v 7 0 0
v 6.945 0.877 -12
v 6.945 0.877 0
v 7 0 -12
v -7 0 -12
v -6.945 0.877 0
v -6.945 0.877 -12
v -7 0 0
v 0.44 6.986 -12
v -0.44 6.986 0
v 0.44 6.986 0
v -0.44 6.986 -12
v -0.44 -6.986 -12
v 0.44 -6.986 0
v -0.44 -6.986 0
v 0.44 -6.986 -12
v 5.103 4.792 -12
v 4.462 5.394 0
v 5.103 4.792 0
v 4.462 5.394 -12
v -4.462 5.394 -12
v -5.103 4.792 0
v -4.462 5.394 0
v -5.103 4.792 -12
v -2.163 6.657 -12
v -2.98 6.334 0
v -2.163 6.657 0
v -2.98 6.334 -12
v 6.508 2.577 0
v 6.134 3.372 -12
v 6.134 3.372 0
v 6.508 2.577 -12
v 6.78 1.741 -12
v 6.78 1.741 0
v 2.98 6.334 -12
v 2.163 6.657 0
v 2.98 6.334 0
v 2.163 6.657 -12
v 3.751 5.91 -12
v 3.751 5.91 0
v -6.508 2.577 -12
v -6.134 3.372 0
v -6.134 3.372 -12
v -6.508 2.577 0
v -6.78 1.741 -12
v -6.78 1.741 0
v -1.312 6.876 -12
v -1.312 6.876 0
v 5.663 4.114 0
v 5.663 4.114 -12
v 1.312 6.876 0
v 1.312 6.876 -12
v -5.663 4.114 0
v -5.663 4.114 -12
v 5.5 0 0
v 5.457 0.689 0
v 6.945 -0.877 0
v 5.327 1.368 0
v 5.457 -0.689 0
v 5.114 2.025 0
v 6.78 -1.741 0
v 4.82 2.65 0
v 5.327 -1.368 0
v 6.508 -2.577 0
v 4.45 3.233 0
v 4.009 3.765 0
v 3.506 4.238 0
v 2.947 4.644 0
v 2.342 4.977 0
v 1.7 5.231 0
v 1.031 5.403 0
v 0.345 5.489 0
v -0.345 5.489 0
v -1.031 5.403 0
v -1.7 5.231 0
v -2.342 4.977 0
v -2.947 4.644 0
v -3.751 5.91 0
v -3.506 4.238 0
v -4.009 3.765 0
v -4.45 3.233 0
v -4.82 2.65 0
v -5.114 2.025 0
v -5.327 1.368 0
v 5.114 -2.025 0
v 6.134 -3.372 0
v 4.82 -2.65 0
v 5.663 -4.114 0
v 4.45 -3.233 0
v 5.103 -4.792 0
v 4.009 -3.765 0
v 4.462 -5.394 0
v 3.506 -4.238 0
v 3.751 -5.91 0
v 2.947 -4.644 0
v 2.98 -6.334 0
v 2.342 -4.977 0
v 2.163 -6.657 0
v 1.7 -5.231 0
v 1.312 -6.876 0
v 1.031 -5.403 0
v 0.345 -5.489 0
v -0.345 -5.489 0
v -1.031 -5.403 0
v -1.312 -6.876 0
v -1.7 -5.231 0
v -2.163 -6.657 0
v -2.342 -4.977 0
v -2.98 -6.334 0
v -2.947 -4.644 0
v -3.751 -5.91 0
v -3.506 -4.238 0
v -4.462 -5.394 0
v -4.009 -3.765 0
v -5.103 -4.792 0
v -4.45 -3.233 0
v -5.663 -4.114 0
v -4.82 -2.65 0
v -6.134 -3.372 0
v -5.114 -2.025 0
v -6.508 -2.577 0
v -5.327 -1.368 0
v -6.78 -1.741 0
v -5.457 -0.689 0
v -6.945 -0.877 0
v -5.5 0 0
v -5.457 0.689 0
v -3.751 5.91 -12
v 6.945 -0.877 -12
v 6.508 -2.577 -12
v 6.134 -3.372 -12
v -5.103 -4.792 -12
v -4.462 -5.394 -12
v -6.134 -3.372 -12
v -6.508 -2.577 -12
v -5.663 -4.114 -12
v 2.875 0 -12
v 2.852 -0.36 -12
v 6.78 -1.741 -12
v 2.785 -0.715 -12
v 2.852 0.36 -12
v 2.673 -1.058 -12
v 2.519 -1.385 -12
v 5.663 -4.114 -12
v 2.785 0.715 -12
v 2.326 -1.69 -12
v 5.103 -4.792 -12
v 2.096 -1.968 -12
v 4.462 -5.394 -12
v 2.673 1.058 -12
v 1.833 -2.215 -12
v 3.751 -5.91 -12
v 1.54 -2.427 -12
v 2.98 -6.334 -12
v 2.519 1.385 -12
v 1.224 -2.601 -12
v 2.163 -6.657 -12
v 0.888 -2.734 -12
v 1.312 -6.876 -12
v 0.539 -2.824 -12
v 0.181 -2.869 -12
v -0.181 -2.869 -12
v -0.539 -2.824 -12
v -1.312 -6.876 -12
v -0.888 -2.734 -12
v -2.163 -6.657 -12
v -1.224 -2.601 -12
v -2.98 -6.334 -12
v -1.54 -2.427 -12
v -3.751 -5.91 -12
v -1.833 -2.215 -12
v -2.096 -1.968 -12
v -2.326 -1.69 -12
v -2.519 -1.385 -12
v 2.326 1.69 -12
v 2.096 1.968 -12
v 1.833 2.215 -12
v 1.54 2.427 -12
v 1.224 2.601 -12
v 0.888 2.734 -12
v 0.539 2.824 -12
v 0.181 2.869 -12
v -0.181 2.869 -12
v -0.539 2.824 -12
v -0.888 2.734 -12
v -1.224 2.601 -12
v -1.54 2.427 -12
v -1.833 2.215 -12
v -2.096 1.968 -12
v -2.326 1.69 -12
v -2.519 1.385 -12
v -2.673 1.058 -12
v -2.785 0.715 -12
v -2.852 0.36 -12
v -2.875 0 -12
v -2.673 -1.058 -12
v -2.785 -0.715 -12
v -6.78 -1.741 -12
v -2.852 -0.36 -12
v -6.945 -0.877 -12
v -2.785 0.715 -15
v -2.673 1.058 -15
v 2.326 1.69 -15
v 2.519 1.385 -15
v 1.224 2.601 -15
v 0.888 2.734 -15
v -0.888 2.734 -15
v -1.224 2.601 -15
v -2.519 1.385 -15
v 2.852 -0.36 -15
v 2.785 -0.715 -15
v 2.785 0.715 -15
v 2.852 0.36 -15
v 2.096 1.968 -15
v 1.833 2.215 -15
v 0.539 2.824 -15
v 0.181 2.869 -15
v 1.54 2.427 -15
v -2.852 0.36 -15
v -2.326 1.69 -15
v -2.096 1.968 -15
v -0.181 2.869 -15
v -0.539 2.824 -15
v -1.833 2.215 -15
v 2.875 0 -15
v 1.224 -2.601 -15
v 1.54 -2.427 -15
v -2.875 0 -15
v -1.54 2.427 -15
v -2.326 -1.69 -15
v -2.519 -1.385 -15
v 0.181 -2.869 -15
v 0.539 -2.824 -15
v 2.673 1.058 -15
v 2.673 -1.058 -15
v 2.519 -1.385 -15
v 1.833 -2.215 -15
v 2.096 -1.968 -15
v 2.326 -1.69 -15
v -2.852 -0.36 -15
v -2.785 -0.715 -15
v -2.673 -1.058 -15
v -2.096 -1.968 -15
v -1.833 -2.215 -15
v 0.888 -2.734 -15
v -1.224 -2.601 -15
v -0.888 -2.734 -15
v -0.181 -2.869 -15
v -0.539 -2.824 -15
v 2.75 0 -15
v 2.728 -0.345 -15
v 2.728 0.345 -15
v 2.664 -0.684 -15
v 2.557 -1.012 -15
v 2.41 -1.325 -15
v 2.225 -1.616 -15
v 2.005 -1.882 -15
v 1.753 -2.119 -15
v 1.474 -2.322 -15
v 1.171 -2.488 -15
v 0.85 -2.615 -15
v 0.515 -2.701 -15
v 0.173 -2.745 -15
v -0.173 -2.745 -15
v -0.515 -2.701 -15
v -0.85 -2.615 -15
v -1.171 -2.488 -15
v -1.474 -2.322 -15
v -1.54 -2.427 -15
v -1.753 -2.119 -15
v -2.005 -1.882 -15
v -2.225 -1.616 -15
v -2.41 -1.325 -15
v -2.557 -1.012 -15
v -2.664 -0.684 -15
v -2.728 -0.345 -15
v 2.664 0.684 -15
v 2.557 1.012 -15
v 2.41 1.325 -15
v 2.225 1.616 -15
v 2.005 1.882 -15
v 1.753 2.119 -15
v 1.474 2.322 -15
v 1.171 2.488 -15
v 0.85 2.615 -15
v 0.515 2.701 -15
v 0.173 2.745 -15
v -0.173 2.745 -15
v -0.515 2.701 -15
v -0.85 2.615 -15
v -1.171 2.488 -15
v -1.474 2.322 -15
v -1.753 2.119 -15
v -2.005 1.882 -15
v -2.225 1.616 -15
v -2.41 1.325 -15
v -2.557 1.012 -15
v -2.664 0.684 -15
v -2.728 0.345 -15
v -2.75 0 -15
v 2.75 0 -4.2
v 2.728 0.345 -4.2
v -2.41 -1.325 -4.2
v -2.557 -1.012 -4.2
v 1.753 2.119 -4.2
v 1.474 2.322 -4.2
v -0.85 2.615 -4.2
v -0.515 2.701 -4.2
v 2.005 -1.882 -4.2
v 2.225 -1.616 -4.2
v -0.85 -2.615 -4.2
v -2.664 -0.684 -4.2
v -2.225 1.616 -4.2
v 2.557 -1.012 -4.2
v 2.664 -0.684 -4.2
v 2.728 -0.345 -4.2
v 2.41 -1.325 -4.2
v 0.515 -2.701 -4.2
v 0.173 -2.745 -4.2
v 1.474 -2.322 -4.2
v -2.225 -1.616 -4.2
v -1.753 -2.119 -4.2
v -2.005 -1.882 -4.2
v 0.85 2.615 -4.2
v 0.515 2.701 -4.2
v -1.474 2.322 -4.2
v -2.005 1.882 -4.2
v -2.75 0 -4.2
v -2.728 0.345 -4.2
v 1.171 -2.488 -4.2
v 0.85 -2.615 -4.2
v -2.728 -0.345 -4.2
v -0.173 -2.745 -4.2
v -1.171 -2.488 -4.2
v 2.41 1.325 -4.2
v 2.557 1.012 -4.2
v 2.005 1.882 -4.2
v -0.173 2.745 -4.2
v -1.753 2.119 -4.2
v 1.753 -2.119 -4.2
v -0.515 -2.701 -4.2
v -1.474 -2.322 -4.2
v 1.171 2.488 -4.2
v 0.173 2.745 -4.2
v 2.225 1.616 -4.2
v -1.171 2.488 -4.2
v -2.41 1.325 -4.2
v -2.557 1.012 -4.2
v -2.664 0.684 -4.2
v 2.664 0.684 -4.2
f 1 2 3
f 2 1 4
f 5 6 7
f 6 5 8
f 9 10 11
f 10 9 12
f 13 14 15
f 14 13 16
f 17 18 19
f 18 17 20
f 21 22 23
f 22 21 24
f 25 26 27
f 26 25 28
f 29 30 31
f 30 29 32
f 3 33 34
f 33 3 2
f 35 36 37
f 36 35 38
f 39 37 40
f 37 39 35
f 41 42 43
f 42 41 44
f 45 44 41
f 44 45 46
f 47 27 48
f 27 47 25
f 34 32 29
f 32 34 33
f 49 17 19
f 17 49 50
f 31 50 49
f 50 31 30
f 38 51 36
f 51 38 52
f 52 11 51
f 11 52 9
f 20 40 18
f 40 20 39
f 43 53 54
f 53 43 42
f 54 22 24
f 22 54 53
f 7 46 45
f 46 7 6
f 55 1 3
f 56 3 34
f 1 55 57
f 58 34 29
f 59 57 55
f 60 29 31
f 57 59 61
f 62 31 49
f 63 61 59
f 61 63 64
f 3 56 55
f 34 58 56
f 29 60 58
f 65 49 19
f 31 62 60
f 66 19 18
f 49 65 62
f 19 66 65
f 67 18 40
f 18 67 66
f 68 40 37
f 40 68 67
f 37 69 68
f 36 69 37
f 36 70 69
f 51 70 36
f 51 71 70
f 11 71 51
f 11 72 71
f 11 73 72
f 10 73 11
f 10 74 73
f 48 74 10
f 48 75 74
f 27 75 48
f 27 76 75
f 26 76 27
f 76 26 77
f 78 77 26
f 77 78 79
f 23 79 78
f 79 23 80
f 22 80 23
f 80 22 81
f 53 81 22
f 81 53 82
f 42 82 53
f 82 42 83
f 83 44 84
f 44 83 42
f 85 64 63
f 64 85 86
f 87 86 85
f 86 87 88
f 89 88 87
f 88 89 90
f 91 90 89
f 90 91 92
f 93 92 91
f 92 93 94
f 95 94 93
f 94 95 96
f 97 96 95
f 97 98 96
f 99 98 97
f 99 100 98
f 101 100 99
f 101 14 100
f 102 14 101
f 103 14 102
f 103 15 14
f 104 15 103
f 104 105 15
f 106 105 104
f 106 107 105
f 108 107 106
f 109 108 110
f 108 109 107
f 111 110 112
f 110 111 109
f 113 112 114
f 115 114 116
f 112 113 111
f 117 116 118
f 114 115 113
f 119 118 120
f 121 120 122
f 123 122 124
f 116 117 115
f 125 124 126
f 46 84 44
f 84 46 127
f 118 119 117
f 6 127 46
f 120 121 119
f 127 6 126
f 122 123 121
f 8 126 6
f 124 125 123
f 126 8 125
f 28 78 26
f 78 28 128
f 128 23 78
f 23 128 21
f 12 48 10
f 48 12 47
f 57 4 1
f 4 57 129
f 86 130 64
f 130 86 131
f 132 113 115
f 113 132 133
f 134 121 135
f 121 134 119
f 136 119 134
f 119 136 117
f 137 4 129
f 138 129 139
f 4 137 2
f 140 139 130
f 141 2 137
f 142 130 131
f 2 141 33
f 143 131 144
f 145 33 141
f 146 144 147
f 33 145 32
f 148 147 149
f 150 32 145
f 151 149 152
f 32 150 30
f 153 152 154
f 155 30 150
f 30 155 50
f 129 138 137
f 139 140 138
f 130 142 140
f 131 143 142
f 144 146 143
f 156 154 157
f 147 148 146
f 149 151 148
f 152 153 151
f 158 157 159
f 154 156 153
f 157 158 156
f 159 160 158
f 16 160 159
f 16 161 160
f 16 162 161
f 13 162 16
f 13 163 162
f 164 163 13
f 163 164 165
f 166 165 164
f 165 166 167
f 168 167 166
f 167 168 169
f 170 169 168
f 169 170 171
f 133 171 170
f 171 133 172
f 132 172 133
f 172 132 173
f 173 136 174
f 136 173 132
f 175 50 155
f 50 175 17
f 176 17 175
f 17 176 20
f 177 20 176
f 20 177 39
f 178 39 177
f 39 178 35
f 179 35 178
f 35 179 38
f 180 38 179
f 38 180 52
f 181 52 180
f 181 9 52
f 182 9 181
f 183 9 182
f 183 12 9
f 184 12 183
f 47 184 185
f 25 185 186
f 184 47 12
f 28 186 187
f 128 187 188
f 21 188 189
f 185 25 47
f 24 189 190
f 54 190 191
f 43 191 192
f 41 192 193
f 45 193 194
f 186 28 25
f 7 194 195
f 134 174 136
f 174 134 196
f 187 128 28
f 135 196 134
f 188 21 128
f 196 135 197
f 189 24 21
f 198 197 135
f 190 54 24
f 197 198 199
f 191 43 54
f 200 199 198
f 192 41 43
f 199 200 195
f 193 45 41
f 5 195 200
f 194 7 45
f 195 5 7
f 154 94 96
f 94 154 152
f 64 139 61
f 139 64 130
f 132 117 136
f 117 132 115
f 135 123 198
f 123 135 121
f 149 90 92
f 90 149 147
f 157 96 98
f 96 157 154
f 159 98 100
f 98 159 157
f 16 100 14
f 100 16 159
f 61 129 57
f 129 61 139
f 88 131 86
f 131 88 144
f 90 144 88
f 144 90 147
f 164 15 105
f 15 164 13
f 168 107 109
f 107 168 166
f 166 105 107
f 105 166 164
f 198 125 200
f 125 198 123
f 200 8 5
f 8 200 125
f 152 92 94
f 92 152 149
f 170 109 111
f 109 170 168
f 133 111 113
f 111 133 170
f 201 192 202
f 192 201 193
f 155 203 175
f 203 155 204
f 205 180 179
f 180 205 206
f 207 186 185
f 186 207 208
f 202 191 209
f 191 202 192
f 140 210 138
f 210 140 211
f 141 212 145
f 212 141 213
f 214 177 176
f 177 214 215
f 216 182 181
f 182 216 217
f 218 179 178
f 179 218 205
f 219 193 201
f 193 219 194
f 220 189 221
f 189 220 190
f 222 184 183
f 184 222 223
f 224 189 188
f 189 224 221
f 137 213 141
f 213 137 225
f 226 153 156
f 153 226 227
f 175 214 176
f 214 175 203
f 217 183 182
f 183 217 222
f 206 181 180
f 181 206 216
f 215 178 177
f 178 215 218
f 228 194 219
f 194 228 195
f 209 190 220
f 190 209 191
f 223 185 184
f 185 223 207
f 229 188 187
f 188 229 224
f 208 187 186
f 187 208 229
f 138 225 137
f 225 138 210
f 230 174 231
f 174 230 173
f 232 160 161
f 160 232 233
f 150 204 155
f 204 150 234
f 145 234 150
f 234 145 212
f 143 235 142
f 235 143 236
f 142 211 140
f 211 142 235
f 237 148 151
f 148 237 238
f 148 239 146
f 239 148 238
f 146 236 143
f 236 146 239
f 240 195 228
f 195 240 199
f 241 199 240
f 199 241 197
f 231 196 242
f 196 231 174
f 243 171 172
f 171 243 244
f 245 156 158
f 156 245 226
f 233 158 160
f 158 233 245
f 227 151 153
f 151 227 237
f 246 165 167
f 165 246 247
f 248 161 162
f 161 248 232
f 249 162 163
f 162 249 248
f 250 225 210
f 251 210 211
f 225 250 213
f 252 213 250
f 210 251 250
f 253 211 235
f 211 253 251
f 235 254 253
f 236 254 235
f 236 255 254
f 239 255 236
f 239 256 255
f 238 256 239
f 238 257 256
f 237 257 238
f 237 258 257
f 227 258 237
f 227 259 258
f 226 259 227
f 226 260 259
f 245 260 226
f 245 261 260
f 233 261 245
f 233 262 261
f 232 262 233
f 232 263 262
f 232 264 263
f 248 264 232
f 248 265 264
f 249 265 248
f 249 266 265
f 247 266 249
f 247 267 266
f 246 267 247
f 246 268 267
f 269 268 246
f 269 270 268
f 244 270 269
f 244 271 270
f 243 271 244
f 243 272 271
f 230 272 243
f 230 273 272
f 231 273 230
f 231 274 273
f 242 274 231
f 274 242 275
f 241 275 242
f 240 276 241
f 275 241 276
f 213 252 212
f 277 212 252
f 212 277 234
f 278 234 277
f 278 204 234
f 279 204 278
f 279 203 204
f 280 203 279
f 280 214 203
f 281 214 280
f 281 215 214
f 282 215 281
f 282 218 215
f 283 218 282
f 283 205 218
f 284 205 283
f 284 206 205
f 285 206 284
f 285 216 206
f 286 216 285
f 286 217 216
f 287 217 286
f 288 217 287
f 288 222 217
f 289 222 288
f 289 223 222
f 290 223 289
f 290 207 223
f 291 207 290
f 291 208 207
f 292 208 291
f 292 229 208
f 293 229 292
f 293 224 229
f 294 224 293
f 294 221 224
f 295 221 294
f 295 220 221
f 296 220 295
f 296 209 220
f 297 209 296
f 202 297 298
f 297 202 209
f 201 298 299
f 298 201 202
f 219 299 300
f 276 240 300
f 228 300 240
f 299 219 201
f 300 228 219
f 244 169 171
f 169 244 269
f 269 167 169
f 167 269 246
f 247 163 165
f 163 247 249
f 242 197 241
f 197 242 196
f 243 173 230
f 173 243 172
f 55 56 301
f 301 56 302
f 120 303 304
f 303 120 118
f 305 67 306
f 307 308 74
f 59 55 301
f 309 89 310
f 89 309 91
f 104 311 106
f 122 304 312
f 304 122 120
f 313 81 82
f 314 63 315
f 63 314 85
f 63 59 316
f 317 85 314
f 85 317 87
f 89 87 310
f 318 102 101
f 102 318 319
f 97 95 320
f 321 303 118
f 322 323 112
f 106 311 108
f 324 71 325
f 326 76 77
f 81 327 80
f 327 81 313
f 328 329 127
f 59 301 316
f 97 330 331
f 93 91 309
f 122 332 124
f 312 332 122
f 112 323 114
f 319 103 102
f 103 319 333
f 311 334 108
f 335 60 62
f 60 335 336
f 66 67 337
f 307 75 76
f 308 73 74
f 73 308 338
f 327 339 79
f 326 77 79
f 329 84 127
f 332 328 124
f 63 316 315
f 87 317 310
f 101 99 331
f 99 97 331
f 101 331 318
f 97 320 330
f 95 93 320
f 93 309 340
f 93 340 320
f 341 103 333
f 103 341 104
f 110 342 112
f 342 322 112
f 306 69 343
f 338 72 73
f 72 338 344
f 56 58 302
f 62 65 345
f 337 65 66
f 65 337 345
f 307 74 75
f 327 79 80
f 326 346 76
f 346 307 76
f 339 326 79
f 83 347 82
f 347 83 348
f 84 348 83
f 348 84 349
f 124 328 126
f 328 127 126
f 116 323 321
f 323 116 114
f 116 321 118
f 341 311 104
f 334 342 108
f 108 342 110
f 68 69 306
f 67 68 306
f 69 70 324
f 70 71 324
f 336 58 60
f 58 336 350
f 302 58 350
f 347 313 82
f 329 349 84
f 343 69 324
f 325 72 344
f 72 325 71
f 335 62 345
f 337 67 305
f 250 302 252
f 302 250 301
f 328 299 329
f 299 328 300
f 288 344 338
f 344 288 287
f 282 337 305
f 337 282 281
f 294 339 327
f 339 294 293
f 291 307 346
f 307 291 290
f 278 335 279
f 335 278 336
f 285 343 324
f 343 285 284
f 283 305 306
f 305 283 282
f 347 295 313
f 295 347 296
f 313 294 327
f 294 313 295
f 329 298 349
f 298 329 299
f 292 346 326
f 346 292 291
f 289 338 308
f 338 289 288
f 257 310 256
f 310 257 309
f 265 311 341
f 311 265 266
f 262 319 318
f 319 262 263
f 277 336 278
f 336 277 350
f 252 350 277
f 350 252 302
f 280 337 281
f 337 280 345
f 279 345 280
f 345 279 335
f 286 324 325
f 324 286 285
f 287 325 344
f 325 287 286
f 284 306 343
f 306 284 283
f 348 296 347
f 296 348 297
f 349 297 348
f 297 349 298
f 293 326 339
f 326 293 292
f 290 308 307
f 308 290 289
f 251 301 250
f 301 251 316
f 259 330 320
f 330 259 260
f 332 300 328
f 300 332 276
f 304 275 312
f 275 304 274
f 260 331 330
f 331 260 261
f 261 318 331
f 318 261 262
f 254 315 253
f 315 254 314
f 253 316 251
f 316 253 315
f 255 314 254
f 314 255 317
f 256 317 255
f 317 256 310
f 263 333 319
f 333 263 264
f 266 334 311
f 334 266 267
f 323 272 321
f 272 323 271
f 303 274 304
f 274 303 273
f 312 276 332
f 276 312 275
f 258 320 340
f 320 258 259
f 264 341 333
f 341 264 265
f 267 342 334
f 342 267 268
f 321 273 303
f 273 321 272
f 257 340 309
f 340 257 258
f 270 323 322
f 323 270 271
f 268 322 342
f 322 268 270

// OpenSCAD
$fn = 50;


difference() {
	union() {
		translate(v = [0, 0, -12.0000000000]) {
			cylinder(h = 12, r = 7.0000000000);
		}
		translate(v = [0, 0, -15.0000000000]) {
			cylinder(h = 15, r = 2.8750000000);
		}
	}
	union() {
		translate(v = [0, 0, 0]) {
			rotate(a = [0, 0, 0]) {
				difference() {
					union() {
						translate(v = [0, 0, -15.0000000000]) {
							cylinder(h = 15, r = 2.2500000000);
						}
						translate(v = [0, 0, -4.2000000000]) {
							cylinder(h = 4.2000000000, r1 = 2.7500000000, r2 = 5.5000000000);
						}
						translate(v = [0, 0, -15.0000000000]) {
							cylinder(h = 15, r = 2.7500000000);
						}
						translate(v = [0, 0, -15.0000000000]) {
							cylinder(h = 15, r = 2.2500000000);
						}
					}
					union();
				}
			}
		}
	}
}
